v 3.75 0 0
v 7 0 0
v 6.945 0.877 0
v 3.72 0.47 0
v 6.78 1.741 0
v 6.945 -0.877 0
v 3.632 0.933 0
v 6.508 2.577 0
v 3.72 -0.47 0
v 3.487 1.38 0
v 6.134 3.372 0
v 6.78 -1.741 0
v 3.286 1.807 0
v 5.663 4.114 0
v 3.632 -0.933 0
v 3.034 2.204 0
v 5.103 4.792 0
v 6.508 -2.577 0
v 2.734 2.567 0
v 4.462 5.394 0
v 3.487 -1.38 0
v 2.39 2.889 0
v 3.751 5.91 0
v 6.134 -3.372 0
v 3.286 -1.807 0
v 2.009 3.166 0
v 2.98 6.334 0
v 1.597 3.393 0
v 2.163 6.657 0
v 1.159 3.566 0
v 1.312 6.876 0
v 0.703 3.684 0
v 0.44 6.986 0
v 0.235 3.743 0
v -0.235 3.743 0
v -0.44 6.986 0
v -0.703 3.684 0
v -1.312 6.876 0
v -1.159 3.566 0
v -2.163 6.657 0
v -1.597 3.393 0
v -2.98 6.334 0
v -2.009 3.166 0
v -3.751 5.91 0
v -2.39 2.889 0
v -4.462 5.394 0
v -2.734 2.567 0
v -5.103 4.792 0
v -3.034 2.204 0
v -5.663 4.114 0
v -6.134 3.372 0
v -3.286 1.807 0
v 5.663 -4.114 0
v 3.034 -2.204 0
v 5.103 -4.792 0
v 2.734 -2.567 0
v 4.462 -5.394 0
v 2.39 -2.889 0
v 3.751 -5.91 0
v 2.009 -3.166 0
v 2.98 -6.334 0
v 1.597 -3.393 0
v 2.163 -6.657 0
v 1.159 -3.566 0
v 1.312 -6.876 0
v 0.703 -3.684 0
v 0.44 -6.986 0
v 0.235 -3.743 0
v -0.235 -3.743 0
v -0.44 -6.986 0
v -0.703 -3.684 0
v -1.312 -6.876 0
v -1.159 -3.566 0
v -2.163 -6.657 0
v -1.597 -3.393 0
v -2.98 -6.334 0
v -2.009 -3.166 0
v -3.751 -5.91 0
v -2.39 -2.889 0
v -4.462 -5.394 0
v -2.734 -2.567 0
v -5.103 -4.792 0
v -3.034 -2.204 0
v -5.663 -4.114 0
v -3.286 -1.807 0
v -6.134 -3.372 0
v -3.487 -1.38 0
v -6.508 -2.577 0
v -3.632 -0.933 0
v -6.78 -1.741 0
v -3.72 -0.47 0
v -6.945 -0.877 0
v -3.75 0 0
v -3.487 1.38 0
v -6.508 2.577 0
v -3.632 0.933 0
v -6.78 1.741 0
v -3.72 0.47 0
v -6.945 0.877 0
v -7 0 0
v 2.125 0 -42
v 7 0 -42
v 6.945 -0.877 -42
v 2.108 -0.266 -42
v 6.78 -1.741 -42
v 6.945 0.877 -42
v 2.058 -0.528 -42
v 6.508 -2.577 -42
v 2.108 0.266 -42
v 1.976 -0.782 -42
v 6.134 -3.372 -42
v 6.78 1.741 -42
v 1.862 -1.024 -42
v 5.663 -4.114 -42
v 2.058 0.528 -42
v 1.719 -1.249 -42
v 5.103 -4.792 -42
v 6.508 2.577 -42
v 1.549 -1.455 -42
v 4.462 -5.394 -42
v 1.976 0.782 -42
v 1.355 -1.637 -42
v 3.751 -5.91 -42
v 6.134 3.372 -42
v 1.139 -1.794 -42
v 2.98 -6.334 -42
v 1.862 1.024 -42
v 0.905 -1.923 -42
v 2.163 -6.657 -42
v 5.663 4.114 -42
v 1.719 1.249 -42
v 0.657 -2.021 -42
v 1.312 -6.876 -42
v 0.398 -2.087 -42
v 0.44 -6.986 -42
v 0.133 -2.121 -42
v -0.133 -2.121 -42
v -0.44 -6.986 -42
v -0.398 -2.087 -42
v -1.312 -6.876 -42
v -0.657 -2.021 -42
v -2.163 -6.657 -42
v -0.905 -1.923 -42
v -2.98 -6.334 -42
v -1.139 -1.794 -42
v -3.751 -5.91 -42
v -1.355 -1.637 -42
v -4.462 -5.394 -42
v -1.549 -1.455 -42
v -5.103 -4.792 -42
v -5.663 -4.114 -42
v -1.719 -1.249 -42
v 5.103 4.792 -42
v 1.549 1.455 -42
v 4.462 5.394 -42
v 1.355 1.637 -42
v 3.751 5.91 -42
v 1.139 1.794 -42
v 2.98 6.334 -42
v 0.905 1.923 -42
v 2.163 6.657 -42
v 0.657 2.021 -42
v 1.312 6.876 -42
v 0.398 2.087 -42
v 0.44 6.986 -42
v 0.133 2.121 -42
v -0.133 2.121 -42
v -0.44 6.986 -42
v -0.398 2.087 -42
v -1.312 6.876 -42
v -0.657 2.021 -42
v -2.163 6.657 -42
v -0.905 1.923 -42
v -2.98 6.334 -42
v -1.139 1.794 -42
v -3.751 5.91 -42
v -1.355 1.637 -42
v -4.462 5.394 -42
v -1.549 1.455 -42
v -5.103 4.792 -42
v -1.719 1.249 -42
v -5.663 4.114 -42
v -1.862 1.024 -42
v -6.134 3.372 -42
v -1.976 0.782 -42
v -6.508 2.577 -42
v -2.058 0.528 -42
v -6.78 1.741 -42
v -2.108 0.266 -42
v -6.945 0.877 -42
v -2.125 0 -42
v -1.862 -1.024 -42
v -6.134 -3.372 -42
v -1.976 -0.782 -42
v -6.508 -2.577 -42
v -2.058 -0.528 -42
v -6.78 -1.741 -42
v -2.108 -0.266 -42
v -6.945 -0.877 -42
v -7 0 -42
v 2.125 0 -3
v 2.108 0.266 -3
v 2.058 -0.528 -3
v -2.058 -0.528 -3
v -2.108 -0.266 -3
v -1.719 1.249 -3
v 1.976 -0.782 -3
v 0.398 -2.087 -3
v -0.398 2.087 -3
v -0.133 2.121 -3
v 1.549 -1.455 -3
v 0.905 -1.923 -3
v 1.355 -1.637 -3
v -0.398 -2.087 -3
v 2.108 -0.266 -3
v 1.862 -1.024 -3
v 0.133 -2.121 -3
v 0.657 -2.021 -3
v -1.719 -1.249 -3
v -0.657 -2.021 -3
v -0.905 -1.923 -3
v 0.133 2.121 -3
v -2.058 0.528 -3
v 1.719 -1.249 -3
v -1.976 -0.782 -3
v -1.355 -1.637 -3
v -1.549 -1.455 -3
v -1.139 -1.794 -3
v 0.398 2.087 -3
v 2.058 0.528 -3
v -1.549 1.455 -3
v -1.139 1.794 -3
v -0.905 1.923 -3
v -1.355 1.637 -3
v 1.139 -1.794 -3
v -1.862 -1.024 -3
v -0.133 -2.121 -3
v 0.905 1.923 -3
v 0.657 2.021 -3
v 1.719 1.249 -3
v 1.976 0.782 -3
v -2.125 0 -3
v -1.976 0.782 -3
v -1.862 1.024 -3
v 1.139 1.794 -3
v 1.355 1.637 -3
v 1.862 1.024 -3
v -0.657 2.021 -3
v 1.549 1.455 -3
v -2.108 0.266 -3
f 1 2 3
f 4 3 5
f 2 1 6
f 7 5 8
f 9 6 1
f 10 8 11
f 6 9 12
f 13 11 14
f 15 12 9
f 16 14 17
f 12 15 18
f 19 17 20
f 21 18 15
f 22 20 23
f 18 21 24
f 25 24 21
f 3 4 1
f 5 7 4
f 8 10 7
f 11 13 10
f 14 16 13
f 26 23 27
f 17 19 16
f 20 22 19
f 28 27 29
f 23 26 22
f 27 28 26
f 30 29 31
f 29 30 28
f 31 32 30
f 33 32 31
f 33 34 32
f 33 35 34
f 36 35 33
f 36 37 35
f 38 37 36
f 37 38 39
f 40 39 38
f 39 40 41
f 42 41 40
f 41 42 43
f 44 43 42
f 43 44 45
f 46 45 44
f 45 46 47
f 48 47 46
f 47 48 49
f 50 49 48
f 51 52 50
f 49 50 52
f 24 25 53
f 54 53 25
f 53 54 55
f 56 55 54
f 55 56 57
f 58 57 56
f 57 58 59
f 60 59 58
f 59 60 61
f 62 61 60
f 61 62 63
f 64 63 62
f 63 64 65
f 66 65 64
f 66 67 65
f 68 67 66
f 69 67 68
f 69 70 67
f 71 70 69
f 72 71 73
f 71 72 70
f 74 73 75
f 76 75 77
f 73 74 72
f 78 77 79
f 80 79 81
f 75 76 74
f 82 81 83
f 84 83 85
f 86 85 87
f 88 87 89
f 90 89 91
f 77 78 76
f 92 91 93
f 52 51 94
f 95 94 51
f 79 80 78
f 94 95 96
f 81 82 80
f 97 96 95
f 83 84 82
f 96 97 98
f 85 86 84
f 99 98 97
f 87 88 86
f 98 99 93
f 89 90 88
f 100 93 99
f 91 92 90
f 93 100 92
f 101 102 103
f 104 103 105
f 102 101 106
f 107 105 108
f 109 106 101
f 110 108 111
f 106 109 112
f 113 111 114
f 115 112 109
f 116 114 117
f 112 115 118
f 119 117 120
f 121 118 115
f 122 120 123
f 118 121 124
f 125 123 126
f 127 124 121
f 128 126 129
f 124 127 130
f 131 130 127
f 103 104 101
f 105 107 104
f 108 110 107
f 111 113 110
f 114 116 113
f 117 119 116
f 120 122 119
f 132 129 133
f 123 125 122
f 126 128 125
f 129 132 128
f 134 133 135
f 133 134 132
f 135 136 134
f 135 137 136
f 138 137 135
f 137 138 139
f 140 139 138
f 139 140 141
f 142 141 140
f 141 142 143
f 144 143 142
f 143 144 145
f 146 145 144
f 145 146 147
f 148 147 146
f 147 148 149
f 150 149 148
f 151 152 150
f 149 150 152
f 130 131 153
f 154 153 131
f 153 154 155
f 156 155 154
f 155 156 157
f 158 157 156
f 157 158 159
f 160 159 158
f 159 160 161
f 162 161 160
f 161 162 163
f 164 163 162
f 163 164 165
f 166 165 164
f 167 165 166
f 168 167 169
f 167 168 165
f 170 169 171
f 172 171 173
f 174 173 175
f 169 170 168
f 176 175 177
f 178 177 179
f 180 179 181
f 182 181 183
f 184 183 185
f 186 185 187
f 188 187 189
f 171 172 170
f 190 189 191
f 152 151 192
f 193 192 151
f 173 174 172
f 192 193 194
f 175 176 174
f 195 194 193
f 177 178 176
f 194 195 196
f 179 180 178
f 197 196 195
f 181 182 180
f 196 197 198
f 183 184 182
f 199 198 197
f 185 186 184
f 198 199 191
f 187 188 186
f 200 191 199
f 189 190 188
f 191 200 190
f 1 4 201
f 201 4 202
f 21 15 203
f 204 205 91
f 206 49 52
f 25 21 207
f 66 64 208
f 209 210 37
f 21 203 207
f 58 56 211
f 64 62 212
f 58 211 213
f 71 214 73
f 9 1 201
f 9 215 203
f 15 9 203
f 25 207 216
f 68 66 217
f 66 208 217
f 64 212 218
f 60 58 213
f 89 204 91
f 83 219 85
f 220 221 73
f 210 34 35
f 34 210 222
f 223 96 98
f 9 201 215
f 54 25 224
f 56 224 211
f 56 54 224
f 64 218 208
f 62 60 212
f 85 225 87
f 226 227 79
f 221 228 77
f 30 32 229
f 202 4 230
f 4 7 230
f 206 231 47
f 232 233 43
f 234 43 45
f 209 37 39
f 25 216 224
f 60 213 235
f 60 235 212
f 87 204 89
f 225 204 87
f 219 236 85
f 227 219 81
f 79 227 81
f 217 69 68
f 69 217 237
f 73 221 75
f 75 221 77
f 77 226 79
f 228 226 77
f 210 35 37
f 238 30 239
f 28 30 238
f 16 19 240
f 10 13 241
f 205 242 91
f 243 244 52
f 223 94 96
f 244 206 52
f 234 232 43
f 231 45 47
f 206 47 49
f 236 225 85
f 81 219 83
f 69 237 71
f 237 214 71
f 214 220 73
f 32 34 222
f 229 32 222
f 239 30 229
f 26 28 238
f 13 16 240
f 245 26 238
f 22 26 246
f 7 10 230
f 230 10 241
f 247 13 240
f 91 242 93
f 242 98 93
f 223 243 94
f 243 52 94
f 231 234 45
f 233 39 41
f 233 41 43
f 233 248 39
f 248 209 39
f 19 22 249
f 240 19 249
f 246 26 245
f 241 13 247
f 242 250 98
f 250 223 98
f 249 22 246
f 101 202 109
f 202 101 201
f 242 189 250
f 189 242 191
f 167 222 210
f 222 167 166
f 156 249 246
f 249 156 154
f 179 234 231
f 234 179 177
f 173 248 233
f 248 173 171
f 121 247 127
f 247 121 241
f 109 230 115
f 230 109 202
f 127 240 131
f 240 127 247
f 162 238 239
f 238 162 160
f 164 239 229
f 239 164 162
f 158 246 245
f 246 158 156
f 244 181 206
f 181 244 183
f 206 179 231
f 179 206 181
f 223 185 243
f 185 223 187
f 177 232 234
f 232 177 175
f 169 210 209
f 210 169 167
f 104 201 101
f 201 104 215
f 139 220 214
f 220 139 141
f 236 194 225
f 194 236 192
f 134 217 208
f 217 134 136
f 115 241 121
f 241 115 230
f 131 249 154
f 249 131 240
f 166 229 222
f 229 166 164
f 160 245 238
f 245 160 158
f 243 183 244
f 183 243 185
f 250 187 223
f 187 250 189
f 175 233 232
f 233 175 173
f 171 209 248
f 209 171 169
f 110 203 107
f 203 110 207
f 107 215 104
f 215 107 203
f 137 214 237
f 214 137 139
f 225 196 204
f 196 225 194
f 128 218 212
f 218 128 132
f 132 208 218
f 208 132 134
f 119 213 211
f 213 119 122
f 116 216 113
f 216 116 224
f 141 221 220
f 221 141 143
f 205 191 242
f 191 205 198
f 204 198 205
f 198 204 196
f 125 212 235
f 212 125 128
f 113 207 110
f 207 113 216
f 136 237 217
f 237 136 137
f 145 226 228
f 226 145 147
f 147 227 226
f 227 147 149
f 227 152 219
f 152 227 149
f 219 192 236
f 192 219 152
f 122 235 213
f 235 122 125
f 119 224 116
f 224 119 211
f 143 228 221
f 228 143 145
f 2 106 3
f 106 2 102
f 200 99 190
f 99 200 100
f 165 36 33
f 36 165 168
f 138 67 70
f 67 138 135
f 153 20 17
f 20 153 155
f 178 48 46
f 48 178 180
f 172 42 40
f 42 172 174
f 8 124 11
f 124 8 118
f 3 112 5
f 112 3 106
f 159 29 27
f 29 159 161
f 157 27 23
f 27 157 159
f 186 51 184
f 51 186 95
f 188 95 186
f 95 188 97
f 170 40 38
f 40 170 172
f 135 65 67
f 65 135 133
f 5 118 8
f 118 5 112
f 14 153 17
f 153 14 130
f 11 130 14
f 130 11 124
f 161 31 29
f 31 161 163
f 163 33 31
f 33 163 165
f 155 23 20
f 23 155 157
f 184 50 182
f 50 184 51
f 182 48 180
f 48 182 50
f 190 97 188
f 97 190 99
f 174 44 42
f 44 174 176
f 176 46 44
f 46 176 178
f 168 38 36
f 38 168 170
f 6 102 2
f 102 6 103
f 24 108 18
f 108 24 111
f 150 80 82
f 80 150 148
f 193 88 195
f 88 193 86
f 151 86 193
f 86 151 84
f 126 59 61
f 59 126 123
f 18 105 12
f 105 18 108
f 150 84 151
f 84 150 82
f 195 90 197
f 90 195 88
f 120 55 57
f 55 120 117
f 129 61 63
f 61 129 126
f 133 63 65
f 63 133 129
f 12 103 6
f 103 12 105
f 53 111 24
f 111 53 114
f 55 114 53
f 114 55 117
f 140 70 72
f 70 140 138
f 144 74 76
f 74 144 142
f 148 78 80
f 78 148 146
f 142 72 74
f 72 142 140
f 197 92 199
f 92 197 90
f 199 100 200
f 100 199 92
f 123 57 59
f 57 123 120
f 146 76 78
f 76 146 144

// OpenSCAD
$fn = 50;


difference() {
	union() {
		translate(v = [0, 0, -42.0000000000]) {
			cylinder(h = 42, r = 7.0000000000);
		}
		cylinder(h = 0, r = 13.0000000000);
	}
	union() {
		translate(v = [0, 0, 0]) {
			rotate(a = [0, 0, 0]) {
				difference() {
					union() {
						#translate(v = [0, 0, -42.0000000000]) {
							cylinder(h = 42, r = 2.0000000000);
						}
						#translate(v = [0, 0, -3]) {
							cylinder(h = 3, r = 7.0000000000, r1 = 2.1250000000, r2 = 3.7500000000);
						}
						#translate(v = [0, 0, -42.0000000000]) {
							cylinder(h = 42, r = 2.1250000000);
						}
						#translate(v = [0, 0, -42.0000000000]) {
							cylinder(h = 42, r = 2.0000000000);
						}
					}
					union();
				}
			}
		}
	}
}
